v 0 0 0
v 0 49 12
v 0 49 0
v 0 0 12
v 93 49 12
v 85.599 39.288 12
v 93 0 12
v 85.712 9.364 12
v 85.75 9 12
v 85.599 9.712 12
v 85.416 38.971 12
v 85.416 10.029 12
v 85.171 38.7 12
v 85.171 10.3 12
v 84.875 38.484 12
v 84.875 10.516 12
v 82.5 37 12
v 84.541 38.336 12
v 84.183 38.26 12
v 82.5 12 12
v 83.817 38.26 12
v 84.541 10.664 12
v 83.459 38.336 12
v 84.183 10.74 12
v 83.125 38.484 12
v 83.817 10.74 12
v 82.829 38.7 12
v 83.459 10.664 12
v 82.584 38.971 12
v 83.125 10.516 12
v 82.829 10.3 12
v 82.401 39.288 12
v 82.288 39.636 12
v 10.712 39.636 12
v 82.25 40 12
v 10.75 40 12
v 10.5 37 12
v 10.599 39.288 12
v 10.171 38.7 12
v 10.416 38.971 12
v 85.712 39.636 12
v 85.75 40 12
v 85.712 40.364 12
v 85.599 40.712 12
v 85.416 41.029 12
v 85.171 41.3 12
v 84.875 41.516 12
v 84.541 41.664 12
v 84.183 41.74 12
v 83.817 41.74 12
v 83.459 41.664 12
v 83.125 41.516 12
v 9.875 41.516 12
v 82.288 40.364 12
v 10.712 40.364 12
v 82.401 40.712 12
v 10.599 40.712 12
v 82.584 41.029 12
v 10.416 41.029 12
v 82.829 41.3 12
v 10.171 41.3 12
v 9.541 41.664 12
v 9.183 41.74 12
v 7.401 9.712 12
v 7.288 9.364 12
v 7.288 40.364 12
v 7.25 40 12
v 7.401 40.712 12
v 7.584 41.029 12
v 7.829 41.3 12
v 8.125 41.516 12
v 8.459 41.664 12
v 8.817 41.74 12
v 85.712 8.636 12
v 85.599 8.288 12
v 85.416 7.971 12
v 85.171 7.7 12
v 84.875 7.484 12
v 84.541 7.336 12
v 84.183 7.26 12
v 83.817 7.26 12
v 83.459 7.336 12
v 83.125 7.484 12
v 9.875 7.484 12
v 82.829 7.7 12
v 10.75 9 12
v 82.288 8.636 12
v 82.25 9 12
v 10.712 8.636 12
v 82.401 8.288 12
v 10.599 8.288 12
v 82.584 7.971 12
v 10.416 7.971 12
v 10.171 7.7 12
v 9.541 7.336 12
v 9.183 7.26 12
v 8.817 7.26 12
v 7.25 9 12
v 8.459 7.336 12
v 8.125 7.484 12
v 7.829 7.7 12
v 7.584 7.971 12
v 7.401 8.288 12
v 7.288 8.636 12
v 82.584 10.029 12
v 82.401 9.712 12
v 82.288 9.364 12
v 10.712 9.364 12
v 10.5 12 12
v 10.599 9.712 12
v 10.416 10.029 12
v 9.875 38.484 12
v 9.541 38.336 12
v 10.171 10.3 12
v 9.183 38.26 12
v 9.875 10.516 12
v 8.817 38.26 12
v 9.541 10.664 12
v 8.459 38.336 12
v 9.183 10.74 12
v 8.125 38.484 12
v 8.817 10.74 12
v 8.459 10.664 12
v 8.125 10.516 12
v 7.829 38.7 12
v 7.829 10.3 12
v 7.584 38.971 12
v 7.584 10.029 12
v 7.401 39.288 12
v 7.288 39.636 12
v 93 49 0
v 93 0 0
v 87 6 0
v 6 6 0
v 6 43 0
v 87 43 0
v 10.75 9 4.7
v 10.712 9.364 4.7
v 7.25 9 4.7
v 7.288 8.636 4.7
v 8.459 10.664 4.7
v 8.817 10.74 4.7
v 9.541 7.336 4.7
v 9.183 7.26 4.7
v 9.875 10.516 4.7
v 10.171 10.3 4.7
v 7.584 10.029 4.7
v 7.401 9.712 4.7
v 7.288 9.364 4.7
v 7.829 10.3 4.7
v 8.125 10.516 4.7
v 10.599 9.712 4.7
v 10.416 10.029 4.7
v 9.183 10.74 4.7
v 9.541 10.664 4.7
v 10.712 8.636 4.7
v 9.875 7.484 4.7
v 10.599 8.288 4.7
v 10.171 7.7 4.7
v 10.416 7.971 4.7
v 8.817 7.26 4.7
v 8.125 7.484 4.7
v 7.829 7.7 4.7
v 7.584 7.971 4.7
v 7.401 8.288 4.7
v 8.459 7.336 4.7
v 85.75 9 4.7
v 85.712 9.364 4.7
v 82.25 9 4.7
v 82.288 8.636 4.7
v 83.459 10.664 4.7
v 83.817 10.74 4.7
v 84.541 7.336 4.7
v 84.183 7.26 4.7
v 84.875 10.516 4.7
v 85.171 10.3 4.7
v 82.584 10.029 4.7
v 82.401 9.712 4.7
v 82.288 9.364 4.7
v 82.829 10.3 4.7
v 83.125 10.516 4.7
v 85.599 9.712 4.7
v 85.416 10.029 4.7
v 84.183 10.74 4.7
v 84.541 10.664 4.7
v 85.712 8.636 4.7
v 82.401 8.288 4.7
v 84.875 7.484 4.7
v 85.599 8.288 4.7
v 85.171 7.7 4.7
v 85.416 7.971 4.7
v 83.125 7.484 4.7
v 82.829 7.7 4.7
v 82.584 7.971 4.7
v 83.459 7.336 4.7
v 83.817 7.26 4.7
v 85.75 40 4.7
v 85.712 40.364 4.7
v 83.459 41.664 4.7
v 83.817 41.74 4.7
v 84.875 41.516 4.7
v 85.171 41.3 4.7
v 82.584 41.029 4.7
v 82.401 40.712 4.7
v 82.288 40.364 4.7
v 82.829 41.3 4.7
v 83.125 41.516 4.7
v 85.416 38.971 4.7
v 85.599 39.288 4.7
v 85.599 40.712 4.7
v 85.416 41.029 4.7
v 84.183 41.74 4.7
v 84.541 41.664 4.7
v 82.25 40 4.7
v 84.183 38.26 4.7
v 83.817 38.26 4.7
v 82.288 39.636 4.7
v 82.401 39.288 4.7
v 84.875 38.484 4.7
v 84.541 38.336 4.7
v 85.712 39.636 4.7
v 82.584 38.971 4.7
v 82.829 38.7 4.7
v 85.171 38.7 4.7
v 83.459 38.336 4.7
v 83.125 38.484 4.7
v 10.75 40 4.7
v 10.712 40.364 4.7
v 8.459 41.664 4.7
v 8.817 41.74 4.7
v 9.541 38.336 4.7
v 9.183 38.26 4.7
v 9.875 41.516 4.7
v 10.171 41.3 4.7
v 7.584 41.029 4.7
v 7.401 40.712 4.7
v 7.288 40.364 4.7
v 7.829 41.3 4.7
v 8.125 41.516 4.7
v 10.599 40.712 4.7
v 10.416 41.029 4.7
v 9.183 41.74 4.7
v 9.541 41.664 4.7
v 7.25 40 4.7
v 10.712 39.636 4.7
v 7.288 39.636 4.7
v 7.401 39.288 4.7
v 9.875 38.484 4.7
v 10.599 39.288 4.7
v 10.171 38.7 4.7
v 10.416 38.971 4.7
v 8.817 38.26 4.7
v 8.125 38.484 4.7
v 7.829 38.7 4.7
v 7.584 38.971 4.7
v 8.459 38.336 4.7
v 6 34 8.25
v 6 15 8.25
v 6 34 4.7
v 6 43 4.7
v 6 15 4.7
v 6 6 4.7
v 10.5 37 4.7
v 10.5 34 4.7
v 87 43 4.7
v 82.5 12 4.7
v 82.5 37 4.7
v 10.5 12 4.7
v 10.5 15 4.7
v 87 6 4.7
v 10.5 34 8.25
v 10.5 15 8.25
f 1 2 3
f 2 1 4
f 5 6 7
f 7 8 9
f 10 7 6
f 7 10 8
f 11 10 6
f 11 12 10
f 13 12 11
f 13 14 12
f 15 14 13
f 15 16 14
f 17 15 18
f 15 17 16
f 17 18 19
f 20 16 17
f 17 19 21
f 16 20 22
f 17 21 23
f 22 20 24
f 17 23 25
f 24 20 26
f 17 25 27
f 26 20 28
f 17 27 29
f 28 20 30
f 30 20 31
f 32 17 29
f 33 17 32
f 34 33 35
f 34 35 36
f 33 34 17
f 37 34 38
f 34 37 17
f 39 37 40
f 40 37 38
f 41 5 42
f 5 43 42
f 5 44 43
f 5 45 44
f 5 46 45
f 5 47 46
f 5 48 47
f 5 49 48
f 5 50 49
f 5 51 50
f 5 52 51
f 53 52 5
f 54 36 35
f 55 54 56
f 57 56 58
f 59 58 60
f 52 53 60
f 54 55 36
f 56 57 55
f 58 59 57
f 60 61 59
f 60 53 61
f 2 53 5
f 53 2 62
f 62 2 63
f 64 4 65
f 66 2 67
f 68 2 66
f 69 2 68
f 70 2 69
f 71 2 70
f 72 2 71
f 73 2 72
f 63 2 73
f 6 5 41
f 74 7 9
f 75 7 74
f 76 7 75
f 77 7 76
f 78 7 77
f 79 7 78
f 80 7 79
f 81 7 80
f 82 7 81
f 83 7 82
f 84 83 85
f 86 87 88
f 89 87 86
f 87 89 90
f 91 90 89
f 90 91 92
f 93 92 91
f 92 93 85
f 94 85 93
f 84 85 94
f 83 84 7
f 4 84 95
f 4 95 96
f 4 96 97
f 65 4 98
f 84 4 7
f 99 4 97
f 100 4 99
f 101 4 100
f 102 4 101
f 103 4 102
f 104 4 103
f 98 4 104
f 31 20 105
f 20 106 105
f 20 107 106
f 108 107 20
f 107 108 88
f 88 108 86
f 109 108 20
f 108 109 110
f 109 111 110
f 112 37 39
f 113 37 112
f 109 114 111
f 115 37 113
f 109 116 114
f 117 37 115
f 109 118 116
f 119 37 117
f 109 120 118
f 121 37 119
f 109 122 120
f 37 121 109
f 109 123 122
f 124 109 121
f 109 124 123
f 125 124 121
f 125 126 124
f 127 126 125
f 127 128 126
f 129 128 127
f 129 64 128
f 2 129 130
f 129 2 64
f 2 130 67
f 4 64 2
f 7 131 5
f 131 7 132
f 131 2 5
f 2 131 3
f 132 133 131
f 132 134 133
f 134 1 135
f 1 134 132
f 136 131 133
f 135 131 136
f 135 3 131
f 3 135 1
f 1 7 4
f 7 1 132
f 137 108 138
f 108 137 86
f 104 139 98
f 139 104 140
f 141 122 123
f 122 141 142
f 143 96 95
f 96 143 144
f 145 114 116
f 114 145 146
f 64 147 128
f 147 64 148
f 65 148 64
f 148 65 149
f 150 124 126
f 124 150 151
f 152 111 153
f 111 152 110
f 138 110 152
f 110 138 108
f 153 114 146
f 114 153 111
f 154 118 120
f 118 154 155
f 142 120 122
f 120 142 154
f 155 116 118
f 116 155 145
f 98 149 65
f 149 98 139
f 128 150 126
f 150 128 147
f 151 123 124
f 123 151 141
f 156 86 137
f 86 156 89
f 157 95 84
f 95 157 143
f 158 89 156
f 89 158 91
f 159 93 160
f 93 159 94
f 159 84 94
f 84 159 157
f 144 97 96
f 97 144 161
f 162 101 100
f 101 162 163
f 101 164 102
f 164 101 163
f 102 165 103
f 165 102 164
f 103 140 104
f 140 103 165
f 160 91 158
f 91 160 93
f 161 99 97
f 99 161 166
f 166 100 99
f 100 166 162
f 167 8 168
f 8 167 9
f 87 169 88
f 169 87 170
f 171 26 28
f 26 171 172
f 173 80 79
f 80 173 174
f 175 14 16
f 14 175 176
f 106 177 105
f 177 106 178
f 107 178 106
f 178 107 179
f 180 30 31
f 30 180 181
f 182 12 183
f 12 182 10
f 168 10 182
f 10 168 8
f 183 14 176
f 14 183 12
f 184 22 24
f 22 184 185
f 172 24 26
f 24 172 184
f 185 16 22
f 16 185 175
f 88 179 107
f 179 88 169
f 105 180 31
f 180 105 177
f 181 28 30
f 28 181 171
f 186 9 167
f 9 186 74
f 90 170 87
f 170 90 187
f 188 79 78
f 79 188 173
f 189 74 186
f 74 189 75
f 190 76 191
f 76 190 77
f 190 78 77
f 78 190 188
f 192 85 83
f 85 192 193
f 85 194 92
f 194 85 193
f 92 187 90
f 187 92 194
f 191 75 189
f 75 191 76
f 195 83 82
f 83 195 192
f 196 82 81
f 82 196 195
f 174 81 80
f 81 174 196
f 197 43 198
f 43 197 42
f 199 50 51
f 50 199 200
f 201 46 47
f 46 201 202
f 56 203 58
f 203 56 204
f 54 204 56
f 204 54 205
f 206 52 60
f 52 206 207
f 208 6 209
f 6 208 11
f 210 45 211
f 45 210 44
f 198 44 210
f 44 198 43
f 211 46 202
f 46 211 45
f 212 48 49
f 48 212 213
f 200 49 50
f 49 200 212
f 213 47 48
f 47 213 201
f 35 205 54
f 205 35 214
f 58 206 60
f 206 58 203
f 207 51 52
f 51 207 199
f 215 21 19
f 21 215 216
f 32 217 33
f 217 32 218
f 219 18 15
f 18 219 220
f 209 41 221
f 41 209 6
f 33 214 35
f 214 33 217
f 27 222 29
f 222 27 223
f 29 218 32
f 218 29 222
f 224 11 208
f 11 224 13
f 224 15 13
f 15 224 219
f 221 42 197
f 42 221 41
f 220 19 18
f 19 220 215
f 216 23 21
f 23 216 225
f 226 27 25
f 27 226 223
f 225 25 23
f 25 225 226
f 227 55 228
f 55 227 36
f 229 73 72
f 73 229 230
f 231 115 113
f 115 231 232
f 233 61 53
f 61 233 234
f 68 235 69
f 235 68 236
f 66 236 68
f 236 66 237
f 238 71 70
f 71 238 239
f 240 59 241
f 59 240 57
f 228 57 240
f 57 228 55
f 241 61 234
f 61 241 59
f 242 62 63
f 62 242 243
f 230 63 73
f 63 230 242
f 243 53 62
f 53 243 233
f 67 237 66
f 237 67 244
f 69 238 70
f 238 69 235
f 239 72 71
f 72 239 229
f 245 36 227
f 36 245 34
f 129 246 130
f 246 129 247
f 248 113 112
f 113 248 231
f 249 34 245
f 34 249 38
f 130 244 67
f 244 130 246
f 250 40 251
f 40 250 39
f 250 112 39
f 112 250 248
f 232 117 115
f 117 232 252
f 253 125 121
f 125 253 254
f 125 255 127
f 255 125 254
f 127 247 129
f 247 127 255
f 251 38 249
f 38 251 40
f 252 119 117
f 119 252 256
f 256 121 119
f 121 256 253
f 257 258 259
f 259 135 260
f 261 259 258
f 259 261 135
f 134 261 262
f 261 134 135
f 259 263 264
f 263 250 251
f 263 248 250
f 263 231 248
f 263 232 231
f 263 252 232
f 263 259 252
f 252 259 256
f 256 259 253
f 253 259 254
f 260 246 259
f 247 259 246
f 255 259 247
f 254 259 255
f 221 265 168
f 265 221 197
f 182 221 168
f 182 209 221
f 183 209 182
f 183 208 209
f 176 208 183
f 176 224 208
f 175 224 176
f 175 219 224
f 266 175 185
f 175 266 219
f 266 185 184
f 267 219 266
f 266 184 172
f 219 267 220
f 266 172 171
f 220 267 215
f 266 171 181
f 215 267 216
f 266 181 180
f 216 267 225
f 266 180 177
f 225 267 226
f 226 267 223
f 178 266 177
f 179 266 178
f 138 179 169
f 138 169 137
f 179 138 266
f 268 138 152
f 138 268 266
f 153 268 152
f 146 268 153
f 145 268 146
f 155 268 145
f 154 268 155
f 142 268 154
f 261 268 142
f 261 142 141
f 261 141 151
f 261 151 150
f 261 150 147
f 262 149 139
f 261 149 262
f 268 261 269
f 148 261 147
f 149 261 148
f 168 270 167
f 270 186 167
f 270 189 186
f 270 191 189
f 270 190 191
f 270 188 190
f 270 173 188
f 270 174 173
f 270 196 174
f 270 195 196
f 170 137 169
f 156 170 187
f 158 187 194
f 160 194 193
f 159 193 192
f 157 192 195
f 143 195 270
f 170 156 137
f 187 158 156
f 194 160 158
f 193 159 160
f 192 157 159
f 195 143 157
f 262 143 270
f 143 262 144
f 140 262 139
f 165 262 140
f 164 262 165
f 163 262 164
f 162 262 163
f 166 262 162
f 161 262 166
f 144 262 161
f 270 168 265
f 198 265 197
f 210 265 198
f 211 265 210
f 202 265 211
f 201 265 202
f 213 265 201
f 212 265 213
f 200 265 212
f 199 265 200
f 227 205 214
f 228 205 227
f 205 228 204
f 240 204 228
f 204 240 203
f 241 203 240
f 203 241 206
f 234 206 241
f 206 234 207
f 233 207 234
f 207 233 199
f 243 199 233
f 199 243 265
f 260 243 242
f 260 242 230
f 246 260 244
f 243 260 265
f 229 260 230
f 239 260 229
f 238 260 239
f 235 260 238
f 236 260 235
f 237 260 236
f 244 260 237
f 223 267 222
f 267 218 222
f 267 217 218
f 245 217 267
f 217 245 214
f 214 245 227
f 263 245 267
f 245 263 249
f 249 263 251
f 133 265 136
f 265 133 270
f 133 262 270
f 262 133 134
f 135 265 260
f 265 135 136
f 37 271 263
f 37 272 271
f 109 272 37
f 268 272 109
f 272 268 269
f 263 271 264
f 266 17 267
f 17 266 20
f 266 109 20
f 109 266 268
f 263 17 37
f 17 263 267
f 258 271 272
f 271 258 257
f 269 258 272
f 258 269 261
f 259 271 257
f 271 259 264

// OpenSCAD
//parameters
wall=6; //thickness around modules
res=30; //circle resolution

//LCD Module 1602
lcdx=72;
lcdy=25;
lcdz=7.3;

lcdpcbx=81;
lcdpcby=37;
lcdpcbz=12; //total height lcd+pcb

lcdlightx=(lcdpcbx-lcdx)/2;
lcdlighty=19;
lcdlightz=3.55;

lcdbolt=3.5; //bolt diameter for mount holes
lcdboltx=75; //distance from center of bolt in x direction
lcdbolty=31; //distance from center of bolt in y direction



module lcd(){
        cube([lcdpcbx,lcdpcby,lcdpcbz-lcdz]);
        translate([(lcdpcbx-lcdx)/2, (lcdpcby-lcdy)/2, lcdpcbz-lcdz]) cube ([lcdx,lcdy,lcdz]);
        translate([0, (lcdpcby-lcdlighty)/2, lcdpcbz-lcdz]) cube ([lcdlightx, lcdlighty, lcdlightz]);
}

module case1(){
    difference(){
        cube([lcdpcbx+2*wall,lcdpcby+2*wall, lcdpcbz]);
        translate ([(lcdpcbx-lcdboltx)/2+wall,(lcdpcby-lcdbolty)/2+wall,0]) cylinder(h=lcdpcbz, d=lcdbolt, $fn=res);
        translate ([(lcdpcbx-lcdboltx)/2+wall+lcdboltx,(lcdpcby-lcdbolty)/2+wall,0]) cylinder(h=lcdpcbz, d=lcdbolt, $fn=res);
        translate ([(lcdpcbx-lcdboltx)/2+wall+lcdboltx,(lcdpcby-lcdbolty)/2+wall+lcdbolty,0]) cylinder(h=lcdpcbz, d=lcdbolt, $fn=res);
        translate ([(lcdpcbx-lcdboltx)/2+wall,(lcdpcby-lcdbolty)/2+wall+lcdbolty,0]) cylinder(h=lcdpcbz, d=lcdbolt, $fn=res);
    
    }
}

module top(){
    difference(){
        case1();
        translate([wall,wall,0]) lcd();
    }
}

top();
